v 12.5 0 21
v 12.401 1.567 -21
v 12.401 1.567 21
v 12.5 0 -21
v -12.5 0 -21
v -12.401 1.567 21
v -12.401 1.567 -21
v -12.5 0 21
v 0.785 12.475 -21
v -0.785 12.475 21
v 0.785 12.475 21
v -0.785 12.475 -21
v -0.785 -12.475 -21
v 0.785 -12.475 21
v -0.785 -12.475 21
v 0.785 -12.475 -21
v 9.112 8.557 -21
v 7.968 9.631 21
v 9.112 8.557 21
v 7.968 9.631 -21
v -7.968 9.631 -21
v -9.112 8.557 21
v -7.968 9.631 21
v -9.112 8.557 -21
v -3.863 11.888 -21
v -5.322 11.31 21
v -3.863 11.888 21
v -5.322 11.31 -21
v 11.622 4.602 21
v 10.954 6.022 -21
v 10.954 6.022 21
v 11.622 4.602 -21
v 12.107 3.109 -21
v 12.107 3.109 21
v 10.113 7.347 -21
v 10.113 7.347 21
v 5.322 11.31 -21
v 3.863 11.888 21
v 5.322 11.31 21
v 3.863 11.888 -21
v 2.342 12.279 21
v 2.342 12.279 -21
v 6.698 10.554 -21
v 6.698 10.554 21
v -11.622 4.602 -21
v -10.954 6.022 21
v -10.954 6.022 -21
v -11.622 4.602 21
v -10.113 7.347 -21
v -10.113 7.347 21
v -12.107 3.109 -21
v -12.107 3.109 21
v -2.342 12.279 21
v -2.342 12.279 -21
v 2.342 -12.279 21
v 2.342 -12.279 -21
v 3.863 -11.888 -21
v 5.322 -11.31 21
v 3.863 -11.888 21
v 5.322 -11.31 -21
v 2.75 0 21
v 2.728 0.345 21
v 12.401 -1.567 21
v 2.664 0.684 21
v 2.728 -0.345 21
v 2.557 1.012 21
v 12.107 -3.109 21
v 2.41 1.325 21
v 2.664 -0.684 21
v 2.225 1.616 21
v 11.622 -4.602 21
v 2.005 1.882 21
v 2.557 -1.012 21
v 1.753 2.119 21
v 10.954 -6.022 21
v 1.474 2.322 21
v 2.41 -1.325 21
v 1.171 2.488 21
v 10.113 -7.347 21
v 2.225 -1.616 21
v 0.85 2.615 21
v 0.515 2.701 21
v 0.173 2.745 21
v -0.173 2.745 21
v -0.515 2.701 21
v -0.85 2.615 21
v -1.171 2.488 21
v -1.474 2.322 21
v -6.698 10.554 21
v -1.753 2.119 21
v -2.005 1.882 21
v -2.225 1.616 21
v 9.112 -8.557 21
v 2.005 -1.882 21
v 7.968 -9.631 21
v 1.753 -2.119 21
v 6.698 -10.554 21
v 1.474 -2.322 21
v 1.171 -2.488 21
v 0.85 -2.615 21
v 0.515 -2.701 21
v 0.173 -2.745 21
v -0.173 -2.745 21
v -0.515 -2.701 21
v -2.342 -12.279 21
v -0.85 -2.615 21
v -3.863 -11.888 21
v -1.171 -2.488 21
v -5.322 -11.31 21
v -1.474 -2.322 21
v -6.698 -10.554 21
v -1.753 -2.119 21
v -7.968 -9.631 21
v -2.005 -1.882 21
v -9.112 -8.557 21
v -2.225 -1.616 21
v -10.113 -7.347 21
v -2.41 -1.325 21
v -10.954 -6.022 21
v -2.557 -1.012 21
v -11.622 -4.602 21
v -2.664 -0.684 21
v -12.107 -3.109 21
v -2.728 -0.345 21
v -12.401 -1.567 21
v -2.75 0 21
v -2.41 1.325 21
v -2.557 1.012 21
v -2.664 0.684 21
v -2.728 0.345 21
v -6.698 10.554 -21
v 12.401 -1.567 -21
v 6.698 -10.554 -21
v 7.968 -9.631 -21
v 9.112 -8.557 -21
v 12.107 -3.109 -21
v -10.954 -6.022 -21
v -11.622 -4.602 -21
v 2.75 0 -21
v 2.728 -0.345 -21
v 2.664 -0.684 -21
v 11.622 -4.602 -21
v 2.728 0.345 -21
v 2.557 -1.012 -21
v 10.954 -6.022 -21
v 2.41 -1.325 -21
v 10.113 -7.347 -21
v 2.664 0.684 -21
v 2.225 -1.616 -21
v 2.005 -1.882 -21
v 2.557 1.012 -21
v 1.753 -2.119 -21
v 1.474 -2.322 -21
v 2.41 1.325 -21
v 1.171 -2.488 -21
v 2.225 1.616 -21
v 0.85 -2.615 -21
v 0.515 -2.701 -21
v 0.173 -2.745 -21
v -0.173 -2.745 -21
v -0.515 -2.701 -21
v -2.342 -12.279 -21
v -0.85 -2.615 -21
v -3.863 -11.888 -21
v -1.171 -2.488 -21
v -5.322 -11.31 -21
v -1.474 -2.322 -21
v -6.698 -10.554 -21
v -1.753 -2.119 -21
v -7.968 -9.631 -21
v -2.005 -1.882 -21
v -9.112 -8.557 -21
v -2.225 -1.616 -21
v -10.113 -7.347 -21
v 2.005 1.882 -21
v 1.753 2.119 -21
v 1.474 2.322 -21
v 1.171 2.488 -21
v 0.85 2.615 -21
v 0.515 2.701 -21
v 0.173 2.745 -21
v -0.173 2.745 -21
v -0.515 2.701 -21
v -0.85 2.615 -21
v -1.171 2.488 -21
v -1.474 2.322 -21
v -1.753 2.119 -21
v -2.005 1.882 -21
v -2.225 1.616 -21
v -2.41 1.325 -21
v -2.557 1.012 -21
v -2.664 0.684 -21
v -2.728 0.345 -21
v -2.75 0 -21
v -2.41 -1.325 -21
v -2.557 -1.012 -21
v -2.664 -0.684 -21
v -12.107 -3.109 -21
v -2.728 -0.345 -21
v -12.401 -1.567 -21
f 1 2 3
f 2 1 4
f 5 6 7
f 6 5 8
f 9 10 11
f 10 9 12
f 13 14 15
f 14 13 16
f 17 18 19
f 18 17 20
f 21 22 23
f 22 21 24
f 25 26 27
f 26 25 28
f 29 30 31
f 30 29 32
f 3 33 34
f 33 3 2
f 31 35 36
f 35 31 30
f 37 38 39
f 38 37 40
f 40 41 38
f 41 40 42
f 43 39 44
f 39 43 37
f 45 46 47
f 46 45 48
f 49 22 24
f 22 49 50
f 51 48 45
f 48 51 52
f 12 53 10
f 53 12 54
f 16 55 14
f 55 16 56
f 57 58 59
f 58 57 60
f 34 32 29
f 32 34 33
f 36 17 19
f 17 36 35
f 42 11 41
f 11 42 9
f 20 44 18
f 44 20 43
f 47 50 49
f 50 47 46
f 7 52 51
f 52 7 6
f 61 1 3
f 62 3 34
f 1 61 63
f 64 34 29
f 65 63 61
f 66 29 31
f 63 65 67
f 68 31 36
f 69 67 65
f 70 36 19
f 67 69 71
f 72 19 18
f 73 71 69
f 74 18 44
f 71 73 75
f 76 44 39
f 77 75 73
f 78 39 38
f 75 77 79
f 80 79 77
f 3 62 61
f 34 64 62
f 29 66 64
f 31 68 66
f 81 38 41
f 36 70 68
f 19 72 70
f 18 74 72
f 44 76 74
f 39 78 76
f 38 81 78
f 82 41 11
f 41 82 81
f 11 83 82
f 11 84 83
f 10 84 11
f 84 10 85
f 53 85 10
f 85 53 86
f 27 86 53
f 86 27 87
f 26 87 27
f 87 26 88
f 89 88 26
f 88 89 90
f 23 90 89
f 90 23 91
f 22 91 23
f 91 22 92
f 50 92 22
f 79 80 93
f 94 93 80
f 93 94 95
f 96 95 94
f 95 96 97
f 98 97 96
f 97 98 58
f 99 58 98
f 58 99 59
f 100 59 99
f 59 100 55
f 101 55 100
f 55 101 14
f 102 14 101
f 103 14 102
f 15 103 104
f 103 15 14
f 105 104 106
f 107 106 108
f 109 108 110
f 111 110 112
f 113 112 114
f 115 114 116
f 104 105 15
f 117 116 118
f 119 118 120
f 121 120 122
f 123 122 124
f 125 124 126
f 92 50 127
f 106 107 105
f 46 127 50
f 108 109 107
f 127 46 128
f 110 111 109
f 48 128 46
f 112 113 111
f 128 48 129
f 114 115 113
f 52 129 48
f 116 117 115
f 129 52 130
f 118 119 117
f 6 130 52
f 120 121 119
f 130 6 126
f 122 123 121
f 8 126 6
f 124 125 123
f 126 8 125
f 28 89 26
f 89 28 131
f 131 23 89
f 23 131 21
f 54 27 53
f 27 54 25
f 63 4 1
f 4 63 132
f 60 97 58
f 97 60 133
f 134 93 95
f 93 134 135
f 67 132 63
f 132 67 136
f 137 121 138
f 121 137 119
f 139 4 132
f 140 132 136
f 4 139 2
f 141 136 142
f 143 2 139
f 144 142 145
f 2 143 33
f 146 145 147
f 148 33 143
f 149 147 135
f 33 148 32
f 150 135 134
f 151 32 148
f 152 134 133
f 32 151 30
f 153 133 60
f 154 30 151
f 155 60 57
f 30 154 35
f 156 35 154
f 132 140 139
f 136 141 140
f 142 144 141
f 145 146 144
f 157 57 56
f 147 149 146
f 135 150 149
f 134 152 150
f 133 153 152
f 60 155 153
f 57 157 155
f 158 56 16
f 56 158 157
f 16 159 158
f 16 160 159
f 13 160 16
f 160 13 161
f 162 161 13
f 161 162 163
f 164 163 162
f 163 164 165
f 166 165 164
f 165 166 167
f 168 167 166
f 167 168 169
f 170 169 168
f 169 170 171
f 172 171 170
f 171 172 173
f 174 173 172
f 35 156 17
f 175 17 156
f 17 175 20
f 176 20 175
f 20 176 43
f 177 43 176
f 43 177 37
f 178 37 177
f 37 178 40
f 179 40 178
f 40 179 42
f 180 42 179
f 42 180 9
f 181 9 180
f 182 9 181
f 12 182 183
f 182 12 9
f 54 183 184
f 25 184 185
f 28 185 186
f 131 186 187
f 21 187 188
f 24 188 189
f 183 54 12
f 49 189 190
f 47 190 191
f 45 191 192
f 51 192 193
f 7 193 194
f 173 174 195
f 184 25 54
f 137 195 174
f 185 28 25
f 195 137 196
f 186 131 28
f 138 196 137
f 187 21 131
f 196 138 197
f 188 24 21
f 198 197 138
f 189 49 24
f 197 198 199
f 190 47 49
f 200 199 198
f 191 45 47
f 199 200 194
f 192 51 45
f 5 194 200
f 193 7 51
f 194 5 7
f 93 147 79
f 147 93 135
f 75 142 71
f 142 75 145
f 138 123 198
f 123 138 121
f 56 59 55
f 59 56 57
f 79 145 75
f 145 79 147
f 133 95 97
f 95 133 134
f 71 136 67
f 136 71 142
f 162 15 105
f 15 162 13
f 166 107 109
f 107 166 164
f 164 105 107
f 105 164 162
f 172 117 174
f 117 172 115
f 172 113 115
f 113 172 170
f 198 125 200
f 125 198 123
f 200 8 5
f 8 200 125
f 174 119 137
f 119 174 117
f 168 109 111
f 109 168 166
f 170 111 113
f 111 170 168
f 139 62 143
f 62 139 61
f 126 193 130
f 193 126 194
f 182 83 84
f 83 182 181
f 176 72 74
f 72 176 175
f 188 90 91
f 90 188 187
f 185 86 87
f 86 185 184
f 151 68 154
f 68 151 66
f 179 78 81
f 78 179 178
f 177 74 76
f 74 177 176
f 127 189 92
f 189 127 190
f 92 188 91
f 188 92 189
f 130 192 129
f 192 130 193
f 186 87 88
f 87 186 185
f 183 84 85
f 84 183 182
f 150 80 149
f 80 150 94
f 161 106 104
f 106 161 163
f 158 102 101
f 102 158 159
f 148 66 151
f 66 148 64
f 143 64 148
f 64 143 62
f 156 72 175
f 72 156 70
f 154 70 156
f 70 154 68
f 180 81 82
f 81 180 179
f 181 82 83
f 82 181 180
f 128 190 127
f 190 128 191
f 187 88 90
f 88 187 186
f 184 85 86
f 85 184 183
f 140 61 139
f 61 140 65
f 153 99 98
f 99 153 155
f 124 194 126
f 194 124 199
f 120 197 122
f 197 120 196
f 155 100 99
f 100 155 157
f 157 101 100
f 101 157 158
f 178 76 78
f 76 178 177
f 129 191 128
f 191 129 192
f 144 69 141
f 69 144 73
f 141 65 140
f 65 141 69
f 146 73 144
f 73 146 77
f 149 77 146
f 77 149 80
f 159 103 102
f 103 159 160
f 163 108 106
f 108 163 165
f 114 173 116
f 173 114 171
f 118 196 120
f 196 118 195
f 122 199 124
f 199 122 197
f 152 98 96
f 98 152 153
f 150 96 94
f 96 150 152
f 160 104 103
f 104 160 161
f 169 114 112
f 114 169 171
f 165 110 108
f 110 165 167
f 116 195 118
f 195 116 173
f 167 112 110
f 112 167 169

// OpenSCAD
$fn = 50;


difference() {
	union() {
		translate(v = [0, 0, -21.0000000000]) {
			cylinder(h = 42, r = 12.5000000000);
		}
	}
	union() {
		translate(v = [0, 0, -100.0000000000]) {
			cylinder(h = 200, r = 2.7500000000);
		}
	}
}
